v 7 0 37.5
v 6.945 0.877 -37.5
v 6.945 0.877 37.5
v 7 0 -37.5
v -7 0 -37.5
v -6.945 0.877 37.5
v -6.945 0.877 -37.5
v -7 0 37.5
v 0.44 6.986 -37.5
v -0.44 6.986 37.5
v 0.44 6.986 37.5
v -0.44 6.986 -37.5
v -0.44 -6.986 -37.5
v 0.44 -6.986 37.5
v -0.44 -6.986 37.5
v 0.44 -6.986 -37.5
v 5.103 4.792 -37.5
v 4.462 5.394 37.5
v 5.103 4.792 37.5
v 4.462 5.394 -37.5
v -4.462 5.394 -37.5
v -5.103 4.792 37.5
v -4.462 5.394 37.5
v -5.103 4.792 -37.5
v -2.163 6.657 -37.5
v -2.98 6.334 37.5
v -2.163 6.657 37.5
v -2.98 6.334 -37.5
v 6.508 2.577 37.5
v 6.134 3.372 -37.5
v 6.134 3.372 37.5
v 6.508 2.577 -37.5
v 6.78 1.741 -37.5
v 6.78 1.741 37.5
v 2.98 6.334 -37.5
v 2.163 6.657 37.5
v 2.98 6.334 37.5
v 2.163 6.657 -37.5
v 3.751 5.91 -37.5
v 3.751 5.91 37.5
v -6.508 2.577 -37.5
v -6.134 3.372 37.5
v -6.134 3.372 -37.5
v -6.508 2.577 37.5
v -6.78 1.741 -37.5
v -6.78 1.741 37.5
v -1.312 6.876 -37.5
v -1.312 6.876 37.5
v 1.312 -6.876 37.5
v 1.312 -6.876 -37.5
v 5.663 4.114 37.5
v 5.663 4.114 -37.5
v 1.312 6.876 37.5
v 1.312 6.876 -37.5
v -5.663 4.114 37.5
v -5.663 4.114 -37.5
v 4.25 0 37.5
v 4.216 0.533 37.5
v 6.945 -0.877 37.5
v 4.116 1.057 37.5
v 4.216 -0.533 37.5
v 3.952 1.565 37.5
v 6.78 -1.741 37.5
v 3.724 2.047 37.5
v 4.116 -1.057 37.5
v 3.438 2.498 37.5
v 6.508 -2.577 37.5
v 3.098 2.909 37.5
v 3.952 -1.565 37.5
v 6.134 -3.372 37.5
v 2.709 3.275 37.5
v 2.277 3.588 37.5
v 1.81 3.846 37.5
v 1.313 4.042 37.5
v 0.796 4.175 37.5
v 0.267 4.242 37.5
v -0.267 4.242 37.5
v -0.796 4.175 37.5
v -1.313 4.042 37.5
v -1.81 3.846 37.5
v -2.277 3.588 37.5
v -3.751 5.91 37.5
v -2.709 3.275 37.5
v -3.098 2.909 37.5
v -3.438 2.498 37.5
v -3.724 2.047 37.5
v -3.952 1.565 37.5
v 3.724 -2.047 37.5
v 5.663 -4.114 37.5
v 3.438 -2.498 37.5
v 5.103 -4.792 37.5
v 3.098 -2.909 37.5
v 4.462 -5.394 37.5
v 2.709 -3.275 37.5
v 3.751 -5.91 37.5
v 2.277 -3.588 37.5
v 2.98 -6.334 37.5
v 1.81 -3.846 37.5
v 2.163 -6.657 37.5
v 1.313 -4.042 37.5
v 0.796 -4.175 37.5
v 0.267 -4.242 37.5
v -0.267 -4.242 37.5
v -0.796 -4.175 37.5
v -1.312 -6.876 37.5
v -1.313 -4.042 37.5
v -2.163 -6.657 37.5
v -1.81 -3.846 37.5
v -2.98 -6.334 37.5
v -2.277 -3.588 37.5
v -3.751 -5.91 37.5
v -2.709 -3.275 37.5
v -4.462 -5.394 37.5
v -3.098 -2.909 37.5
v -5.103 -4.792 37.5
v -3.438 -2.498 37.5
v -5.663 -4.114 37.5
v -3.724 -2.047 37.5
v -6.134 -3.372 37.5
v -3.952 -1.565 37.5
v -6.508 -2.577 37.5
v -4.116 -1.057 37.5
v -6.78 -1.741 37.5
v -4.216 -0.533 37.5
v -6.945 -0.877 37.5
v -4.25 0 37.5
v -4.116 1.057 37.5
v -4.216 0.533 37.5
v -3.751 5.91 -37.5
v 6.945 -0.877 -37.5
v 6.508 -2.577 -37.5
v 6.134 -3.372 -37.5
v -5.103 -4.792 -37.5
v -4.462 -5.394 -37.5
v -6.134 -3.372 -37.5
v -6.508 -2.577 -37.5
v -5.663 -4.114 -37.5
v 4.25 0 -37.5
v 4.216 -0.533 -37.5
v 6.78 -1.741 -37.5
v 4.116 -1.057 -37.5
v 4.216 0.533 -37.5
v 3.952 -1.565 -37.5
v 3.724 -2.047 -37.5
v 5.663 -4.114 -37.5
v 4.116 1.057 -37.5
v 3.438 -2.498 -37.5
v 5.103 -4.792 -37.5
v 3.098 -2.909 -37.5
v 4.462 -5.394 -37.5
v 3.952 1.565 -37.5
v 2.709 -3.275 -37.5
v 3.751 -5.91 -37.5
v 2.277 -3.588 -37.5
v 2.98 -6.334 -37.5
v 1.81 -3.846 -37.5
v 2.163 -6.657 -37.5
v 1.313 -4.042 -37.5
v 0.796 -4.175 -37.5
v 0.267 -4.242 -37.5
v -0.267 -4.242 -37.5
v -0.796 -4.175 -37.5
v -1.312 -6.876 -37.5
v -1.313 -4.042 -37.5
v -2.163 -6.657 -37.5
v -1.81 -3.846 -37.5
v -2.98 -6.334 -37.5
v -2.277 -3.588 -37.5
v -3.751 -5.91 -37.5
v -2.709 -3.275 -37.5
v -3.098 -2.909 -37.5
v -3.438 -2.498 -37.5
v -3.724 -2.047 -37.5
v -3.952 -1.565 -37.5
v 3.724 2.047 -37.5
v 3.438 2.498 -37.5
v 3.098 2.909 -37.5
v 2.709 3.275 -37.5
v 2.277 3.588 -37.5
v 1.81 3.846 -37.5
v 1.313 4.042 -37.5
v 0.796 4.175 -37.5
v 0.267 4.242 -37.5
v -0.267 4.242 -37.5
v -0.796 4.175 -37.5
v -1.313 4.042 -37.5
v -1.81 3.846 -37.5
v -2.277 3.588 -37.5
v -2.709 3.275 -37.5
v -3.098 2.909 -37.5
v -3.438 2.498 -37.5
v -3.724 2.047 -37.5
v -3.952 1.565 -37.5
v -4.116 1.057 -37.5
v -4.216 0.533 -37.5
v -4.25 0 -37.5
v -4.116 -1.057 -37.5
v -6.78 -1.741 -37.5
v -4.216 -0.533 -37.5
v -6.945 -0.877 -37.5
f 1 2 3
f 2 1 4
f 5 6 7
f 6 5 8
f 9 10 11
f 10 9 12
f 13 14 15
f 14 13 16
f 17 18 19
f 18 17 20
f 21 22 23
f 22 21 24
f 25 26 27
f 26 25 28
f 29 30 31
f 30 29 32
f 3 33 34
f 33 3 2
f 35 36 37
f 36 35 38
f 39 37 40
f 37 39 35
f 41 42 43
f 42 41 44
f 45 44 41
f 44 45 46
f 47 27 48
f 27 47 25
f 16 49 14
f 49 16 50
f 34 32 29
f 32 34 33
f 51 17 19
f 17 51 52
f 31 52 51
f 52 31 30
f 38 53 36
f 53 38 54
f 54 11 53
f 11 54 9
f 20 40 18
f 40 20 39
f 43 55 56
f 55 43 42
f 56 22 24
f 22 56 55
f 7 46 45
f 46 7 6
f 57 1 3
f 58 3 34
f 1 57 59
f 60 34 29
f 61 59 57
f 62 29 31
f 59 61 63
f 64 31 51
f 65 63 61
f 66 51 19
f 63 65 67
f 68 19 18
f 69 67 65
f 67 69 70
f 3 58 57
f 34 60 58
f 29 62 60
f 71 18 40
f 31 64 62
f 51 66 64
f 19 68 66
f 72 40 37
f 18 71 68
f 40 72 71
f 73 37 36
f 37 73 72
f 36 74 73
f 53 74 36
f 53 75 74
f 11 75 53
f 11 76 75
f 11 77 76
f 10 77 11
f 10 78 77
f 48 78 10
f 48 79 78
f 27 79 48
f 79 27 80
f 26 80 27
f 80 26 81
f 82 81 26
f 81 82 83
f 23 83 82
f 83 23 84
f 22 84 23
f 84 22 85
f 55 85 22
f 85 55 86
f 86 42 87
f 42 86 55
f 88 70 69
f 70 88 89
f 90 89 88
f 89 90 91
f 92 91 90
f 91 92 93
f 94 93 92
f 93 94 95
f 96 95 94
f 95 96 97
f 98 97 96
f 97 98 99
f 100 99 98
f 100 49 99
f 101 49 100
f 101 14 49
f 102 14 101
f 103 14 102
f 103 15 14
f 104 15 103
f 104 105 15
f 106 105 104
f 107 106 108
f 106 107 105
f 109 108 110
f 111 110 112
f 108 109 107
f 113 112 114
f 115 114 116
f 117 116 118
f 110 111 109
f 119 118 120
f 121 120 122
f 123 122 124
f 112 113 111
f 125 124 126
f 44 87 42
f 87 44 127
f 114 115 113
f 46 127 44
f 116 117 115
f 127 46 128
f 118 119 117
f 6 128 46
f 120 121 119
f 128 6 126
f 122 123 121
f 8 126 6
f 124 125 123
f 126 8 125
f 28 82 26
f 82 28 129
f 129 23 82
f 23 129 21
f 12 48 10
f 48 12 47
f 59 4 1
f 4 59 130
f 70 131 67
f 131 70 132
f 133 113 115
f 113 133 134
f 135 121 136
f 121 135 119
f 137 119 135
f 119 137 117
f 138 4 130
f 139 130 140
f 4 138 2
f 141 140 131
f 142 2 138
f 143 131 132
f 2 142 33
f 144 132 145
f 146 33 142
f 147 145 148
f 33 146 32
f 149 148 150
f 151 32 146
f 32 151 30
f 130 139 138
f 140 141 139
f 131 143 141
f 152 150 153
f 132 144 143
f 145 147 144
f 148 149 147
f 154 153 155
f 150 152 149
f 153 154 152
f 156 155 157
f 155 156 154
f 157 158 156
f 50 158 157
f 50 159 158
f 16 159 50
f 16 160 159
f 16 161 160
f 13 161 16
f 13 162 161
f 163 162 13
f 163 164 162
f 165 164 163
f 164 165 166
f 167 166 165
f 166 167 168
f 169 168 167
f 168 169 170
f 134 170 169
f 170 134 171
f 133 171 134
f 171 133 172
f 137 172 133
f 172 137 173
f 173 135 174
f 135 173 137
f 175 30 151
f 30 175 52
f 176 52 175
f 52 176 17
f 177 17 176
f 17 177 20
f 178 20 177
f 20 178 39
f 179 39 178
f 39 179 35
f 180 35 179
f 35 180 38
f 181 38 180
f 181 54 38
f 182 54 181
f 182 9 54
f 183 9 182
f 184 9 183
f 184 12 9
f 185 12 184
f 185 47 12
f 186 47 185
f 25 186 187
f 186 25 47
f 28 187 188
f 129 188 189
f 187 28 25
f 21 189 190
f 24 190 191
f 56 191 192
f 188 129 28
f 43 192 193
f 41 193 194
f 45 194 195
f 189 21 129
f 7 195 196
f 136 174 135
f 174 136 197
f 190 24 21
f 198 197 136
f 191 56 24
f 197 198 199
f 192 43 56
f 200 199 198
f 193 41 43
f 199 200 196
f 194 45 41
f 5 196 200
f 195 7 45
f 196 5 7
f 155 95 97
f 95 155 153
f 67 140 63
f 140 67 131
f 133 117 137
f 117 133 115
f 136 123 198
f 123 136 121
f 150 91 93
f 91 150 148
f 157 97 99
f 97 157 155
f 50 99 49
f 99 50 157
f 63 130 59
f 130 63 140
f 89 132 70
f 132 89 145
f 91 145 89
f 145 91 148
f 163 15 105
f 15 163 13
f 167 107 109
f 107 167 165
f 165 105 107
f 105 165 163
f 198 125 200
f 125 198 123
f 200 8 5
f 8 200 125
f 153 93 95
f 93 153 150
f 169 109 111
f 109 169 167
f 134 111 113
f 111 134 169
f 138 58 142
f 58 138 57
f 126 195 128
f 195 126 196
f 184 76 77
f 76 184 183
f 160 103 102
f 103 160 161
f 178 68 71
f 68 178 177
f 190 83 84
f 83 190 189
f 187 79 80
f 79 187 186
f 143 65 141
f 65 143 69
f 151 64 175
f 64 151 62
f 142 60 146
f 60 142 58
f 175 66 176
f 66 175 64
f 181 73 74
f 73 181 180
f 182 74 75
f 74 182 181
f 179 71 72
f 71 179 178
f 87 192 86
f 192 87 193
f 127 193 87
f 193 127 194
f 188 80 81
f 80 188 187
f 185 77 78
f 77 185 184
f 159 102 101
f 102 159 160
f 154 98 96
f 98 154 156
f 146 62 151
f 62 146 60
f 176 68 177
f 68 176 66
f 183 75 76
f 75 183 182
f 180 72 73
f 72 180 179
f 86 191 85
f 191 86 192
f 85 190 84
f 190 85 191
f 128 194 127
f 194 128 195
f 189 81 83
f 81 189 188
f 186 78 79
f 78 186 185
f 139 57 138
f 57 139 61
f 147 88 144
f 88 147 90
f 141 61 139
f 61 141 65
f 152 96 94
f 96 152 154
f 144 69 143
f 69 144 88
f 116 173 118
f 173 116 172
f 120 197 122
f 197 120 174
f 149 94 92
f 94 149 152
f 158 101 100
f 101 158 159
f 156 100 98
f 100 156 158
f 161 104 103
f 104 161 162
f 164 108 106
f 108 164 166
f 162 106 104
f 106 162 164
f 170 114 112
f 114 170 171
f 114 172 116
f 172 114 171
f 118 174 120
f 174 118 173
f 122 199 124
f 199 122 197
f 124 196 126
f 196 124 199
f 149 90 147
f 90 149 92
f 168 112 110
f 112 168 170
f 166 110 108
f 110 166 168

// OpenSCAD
$fn = 50;


difference() {
	union() {
		translate(v = [0, 0, -37.5000000000]) {
			cylinder(h = 75, r = 7.0000000000);
		}
	}
	union() {
		translate(v = [0, 0, -100.0000000000]) {
			cylinder(h = 200, r = 4.2500000000);
		}
	}
}
